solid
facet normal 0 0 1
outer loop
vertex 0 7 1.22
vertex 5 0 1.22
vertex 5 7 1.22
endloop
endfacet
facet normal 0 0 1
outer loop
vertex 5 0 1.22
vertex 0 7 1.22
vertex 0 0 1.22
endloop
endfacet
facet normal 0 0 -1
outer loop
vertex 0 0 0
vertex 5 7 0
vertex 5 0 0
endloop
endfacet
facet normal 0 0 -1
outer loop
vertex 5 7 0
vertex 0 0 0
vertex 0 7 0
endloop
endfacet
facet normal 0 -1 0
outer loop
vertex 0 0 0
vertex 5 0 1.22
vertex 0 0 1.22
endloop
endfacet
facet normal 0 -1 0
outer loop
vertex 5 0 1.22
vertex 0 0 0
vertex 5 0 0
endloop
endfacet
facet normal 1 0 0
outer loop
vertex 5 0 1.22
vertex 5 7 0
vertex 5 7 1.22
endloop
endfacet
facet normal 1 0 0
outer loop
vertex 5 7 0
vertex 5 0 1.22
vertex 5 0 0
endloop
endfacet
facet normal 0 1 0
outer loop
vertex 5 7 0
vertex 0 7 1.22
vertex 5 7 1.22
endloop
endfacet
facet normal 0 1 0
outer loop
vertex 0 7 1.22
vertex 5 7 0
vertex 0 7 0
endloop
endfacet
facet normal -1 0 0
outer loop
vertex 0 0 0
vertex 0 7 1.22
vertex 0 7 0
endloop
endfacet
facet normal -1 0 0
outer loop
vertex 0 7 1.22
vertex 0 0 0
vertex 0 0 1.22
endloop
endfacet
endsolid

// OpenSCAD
/* Warning, this is a very basic generator with a lot of approximation 
input data : [LLGA, LLX, 5x7x1.22mm, 6, , A, C04-00499A]
generated by com.zoubworld.electronics.cad.model3d.Basic
Date : Sun Feb 15 10:50:48 CET 2026
*/

//body
color("black")
translate([0,0,0])
cube([5.0,7.0,1.22], center=false);
